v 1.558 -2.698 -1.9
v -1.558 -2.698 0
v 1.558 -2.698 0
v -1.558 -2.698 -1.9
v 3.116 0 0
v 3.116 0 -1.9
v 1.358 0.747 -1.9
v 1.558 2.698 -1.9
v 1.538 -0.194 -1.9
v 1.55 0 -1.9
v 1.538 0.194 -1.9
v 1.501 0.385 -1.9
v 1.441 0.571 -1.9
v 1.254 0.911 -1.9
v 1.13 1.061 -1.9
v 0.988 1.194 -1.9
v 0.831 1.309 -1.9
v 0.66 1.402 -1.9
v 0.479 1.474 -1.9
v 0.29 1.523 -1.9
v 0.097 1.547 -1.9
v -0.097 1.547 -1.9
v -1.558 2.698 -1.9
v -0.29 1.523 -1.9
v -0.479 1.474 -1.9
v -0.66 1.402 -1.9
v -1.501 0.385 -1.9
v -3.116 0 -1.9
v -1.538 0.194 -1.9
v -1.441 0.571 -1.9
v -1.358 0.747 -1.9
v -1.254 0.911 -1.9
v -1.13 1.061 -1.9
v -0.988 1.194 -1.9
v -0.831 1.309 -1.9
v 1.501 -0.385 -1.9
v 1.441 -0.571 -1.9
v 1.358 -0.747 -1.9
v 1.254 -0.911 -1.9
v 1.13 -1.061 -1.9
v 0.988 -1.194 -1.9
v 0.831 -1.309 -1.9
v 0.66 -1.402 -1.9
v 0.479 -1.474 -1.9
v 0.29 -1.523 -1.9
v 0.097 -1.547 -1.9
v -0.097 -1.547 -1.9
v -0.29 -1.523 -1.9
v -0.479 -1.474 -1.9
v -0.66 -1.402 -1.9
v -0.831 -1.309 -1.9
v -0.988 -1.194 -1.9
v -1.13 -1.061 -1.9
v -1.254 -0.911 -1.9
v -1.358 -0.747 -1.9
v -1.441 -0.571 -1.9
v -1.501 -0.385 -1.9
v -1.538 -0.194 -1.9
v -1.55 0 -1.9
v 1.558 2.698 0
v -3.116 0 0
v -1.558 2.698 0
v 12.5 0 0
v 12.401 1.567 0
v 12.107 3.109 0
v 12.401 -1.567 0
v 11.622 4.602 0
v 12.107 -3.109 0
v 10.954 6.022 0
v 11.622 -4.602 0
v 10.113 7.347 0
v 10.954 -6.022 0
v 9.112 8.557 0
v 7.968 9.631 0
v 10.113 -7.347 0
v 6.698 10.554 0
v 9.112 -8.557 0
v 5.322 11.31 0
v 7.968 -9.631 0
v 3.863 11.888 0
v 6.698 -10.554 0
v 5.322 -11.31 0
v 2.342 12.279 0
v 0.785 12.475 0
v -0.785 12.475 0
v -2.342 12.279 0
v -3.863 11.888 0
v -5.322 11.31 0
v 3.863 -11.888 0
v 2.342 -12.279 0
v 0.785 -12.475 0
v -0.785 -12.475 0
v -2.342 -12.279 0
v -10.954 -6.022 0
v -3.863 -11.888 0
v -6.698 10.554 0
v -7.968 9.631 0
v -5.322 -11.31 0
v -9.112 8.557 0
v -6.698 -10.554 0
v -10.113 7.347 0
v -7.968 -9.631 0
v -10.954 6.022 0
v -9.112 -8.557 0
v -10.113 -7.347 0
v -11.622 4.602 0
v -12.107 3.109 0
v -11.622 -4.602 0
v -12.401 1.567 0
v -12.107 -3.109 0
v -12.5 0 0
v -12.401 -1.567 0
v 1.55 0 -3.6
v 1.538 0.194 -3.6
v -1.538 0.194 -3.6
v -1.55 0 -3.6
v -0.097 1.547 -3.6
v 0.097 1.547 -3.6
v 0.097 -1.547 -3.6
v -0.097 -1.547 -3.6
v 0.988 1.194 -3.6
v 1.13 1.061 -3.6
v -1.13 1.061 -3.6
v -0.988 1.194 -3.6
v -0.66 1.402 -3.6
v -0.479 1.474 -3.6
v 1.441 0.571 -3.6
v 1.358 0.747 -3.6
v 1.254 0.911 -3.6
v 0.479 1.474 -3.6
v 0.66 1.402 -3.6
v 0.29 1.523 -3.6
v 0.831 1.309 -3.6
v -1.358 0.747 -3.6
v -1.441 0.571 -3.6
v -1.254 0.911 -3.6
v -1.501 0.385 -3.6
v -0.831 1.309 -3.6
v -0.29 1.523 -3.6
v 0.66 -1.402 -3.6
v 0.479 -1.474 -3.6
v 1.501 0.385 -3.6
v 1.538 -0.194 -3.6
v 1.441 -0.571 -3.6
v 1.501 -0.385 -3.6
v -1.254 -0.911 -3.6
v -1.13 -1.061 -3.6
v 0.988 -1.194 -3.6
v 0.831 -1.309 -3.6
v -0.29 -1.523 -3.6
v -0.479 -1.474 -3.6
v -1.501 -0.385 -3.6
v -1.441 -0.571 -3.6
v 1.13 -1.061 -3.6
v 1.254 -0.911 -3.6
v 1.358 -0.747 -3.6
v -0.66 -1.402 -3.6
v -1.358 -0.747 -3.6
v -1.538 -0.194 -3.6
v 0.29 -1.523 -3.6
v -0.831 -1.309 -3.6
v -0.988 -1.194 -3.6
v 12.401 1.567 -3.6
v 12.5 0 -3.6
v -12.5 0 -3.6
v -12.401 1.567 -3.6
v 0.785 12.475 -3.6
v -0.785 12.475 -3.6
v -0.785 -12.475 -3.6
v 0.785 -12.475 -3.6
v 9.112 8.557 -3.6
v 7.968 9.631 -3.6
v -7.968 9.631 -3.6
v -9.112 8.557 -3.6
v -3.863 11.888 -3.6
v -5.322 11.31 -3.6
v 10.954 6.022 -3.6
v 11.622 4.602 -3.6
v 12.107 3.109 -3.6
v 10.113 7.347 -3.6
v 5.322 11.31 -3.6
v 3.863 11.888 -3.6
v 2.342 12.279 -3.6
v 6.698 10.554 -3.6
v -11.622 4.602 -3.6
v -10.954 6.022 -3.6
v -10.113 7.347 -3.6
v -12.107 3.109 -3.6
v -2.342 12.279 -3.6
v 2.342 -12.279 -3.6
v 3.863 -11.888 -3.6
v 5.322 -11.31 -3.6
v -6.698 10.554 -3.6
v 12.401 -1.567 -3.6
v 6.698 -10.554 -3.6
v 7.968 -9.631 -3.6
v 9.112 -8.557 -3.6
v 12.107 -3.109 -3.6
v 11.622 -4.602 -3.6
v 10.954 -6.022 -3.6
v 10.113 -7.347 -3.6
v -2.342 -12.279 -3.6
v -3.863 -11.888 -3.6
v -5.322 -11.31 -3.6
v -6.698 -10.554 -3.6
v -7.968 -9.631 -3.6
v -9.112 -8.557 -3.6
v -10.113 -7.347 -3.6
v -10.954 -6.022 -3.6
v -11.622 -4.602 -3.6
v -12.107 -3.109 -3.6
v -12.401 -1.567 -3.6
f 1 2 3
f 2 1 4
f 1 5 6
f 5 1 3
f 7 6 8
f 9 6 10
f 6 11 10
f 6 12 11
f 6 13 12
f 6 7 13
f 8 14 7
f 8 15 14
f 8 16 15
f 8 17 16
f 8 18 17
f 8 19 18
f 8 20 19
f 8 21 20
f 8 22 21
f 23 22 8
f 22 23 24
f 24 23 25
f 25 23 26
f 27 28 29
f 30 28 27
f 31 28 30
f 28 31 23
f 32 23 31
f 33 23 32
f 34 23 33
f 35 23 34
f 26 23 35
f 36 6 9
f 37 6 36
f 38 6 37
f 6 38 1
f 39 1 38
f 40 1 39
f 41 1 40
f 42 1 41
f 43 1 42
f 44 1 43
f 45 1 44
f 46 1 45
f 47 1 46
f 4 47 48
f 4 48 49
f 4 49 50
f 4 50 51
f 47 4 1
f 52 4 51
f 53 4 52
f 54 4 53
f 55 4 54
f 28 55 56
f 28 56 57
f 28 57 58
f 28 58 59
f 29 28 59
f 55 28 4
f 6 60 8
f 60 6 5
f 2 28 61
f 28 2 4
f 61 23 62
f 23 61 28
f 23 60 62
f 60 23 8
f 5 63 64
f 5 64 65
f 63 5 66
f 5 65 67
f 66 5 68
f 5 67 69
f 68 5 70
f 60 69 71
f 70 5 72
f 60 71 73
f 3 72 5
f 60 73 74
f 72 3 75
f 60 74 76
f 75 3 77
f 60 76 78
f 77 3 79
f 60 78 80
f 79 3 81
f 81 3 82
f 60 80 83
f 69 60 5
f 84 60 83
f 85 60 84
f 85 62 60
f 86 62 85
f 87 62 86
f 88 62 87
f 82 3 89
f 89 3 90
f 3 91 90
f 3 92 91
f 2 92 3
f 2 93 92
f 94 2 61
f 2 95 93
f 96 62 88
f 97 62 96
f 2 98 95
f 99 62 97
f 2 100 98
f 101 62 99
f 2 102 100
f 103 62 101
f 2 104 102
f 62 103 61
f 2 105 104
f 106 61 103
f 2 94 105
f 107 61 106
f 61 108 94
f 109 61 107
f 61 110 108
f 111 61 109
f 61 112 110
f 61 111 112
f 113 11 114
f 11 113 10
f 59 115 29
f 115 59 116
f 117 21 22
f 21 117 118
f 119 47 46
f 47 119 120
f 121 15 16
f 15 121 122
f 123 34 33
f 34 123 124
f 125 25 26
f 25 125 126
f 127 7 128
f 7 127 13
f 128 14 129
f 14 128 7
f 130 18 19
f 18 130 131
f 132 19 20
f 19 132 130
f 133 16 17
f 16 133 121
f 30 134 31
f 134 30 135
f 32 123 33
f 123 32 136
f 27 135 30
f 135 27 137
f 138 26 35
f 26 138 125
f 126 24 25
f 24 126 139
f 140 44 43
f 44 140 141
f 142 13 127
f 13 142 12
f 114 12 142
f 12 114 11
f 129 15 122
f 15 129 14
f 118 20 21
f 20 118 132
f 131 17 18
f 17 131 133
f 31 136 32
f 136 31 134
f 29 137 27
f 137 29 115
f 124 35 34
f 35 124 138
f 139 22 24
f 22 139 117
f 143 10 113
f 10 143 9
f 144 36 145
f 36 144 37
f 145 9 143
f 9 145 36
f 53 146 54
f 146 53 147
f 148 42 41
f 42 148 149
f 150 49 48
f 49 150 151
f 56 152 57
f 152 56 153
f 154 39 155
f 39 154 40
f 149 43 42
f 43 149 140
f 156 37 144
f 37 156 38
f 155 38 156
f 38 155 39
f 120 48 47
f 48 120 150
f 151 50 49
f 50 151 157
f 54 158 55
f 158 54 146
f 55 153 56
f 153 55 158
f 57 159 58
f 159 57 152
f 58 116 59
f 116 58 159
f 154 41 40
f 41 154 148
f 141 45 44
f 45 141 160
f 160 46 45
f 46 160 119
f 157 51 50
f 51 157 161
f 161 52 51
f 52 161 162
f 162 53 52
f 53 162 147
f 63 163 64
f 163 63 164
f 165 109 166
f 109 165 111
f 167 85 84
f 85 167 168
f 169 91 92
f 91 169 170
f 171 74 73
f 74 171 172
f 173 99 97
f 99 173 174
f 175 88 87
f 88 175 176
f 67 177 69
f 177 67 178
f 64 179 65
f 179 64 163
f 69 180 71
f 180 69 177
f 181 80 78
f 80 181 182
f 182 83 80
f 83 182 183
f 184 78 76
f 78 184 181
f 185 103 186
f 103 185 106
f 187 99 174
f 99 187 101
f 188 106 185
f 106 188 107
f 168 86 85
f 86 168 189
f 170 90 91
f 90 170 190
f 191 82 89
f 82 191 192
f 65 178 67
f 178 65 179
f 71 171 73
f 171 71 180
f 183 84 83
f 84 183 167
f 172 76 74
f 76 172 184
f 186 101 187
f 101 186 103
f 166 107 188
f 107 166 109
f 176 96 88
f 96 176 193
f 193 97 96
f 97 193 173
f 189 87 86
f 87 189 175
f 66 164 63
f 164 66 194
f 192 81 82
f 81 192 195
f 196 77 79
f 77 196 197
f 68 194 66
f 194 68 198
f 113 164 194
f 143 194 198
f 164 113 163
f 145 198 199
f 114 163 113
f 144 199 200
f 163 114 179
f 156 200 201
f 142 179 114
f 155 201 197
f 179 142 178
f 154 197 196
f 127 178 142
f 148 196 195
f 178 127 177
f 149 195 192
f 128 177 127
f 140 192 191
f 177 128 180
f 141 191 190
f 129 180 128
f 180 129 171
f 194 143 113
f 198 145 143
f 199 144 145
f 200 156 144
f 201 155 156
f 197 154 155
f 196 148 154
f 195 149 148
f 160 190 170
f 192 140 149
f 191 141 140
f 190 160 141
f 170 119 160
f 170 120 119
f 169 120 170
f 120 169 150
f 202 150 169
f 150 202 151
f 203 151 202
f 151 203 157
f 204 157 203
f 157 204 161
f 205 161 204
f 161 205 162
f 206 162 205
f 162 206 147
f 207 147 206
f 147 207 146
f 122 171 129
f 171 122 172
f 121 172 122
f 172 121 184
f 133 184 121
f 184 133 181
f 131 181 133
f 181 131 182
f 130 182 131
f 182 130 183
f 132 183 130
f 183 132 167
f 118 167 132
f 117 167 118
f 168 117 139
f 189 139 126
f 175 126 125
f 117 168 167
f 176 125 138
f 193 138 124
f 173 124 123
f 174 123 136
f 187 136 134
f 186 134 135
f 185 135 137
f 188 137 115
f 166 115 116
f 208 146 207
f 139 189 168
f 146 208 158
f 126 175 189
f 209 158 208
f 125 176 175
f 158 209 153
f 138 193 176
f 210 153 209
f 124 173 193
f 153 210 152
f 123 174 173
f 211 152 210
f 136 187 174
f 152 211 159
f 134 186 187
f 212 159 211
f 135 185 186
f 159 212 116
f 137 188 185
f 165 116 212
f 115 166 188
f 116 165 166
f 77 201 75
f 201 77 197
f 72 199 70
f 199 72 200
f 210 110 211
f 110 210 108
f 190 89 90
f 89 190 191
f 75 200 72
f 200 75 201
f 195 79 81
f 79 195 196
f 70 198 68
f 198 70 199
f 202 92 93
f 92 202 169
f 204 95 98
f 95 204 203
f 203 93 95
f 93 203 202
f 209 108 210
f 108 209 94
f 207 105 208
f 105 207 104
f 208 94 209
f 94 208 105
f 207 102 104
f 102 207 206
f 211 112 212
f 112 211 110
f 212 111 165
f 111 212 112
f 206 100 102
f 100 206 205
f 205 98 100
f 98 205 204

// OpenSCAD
$fn = 50;


difference() {
	union() {
		translate(v = [0, 0, -3.6000000000]) {
			cylinder(h = 3.6000000000, r = 12.5000000000);
		}
	}
	union() {
		translate(v = [0, 0, 0]) {
			rotate(a = [0, 0, 0]) {
				difference() {
					union() {
						translate(v = [0, 0, -1.9000000000]) {
							linear_extrude(height = 1.9000000000) {
								polygon(points = [[3.1158000000, 0.0000000000], [1.5579000000, 2.6983619531], [-1.5579000000, 2.6983619531], [-3.1158000000, 0.0000000000], [-1.5579000000, -2.6983619531], [1.5579000000, -2.6983619531]]);
							}
						}
					}
					union();
				}
			}
		}
		#translate(v = [0, 0, -100.0000000000]) {
			cylinder(h = 200, r = 1.5500000000);
		}
	}
}
